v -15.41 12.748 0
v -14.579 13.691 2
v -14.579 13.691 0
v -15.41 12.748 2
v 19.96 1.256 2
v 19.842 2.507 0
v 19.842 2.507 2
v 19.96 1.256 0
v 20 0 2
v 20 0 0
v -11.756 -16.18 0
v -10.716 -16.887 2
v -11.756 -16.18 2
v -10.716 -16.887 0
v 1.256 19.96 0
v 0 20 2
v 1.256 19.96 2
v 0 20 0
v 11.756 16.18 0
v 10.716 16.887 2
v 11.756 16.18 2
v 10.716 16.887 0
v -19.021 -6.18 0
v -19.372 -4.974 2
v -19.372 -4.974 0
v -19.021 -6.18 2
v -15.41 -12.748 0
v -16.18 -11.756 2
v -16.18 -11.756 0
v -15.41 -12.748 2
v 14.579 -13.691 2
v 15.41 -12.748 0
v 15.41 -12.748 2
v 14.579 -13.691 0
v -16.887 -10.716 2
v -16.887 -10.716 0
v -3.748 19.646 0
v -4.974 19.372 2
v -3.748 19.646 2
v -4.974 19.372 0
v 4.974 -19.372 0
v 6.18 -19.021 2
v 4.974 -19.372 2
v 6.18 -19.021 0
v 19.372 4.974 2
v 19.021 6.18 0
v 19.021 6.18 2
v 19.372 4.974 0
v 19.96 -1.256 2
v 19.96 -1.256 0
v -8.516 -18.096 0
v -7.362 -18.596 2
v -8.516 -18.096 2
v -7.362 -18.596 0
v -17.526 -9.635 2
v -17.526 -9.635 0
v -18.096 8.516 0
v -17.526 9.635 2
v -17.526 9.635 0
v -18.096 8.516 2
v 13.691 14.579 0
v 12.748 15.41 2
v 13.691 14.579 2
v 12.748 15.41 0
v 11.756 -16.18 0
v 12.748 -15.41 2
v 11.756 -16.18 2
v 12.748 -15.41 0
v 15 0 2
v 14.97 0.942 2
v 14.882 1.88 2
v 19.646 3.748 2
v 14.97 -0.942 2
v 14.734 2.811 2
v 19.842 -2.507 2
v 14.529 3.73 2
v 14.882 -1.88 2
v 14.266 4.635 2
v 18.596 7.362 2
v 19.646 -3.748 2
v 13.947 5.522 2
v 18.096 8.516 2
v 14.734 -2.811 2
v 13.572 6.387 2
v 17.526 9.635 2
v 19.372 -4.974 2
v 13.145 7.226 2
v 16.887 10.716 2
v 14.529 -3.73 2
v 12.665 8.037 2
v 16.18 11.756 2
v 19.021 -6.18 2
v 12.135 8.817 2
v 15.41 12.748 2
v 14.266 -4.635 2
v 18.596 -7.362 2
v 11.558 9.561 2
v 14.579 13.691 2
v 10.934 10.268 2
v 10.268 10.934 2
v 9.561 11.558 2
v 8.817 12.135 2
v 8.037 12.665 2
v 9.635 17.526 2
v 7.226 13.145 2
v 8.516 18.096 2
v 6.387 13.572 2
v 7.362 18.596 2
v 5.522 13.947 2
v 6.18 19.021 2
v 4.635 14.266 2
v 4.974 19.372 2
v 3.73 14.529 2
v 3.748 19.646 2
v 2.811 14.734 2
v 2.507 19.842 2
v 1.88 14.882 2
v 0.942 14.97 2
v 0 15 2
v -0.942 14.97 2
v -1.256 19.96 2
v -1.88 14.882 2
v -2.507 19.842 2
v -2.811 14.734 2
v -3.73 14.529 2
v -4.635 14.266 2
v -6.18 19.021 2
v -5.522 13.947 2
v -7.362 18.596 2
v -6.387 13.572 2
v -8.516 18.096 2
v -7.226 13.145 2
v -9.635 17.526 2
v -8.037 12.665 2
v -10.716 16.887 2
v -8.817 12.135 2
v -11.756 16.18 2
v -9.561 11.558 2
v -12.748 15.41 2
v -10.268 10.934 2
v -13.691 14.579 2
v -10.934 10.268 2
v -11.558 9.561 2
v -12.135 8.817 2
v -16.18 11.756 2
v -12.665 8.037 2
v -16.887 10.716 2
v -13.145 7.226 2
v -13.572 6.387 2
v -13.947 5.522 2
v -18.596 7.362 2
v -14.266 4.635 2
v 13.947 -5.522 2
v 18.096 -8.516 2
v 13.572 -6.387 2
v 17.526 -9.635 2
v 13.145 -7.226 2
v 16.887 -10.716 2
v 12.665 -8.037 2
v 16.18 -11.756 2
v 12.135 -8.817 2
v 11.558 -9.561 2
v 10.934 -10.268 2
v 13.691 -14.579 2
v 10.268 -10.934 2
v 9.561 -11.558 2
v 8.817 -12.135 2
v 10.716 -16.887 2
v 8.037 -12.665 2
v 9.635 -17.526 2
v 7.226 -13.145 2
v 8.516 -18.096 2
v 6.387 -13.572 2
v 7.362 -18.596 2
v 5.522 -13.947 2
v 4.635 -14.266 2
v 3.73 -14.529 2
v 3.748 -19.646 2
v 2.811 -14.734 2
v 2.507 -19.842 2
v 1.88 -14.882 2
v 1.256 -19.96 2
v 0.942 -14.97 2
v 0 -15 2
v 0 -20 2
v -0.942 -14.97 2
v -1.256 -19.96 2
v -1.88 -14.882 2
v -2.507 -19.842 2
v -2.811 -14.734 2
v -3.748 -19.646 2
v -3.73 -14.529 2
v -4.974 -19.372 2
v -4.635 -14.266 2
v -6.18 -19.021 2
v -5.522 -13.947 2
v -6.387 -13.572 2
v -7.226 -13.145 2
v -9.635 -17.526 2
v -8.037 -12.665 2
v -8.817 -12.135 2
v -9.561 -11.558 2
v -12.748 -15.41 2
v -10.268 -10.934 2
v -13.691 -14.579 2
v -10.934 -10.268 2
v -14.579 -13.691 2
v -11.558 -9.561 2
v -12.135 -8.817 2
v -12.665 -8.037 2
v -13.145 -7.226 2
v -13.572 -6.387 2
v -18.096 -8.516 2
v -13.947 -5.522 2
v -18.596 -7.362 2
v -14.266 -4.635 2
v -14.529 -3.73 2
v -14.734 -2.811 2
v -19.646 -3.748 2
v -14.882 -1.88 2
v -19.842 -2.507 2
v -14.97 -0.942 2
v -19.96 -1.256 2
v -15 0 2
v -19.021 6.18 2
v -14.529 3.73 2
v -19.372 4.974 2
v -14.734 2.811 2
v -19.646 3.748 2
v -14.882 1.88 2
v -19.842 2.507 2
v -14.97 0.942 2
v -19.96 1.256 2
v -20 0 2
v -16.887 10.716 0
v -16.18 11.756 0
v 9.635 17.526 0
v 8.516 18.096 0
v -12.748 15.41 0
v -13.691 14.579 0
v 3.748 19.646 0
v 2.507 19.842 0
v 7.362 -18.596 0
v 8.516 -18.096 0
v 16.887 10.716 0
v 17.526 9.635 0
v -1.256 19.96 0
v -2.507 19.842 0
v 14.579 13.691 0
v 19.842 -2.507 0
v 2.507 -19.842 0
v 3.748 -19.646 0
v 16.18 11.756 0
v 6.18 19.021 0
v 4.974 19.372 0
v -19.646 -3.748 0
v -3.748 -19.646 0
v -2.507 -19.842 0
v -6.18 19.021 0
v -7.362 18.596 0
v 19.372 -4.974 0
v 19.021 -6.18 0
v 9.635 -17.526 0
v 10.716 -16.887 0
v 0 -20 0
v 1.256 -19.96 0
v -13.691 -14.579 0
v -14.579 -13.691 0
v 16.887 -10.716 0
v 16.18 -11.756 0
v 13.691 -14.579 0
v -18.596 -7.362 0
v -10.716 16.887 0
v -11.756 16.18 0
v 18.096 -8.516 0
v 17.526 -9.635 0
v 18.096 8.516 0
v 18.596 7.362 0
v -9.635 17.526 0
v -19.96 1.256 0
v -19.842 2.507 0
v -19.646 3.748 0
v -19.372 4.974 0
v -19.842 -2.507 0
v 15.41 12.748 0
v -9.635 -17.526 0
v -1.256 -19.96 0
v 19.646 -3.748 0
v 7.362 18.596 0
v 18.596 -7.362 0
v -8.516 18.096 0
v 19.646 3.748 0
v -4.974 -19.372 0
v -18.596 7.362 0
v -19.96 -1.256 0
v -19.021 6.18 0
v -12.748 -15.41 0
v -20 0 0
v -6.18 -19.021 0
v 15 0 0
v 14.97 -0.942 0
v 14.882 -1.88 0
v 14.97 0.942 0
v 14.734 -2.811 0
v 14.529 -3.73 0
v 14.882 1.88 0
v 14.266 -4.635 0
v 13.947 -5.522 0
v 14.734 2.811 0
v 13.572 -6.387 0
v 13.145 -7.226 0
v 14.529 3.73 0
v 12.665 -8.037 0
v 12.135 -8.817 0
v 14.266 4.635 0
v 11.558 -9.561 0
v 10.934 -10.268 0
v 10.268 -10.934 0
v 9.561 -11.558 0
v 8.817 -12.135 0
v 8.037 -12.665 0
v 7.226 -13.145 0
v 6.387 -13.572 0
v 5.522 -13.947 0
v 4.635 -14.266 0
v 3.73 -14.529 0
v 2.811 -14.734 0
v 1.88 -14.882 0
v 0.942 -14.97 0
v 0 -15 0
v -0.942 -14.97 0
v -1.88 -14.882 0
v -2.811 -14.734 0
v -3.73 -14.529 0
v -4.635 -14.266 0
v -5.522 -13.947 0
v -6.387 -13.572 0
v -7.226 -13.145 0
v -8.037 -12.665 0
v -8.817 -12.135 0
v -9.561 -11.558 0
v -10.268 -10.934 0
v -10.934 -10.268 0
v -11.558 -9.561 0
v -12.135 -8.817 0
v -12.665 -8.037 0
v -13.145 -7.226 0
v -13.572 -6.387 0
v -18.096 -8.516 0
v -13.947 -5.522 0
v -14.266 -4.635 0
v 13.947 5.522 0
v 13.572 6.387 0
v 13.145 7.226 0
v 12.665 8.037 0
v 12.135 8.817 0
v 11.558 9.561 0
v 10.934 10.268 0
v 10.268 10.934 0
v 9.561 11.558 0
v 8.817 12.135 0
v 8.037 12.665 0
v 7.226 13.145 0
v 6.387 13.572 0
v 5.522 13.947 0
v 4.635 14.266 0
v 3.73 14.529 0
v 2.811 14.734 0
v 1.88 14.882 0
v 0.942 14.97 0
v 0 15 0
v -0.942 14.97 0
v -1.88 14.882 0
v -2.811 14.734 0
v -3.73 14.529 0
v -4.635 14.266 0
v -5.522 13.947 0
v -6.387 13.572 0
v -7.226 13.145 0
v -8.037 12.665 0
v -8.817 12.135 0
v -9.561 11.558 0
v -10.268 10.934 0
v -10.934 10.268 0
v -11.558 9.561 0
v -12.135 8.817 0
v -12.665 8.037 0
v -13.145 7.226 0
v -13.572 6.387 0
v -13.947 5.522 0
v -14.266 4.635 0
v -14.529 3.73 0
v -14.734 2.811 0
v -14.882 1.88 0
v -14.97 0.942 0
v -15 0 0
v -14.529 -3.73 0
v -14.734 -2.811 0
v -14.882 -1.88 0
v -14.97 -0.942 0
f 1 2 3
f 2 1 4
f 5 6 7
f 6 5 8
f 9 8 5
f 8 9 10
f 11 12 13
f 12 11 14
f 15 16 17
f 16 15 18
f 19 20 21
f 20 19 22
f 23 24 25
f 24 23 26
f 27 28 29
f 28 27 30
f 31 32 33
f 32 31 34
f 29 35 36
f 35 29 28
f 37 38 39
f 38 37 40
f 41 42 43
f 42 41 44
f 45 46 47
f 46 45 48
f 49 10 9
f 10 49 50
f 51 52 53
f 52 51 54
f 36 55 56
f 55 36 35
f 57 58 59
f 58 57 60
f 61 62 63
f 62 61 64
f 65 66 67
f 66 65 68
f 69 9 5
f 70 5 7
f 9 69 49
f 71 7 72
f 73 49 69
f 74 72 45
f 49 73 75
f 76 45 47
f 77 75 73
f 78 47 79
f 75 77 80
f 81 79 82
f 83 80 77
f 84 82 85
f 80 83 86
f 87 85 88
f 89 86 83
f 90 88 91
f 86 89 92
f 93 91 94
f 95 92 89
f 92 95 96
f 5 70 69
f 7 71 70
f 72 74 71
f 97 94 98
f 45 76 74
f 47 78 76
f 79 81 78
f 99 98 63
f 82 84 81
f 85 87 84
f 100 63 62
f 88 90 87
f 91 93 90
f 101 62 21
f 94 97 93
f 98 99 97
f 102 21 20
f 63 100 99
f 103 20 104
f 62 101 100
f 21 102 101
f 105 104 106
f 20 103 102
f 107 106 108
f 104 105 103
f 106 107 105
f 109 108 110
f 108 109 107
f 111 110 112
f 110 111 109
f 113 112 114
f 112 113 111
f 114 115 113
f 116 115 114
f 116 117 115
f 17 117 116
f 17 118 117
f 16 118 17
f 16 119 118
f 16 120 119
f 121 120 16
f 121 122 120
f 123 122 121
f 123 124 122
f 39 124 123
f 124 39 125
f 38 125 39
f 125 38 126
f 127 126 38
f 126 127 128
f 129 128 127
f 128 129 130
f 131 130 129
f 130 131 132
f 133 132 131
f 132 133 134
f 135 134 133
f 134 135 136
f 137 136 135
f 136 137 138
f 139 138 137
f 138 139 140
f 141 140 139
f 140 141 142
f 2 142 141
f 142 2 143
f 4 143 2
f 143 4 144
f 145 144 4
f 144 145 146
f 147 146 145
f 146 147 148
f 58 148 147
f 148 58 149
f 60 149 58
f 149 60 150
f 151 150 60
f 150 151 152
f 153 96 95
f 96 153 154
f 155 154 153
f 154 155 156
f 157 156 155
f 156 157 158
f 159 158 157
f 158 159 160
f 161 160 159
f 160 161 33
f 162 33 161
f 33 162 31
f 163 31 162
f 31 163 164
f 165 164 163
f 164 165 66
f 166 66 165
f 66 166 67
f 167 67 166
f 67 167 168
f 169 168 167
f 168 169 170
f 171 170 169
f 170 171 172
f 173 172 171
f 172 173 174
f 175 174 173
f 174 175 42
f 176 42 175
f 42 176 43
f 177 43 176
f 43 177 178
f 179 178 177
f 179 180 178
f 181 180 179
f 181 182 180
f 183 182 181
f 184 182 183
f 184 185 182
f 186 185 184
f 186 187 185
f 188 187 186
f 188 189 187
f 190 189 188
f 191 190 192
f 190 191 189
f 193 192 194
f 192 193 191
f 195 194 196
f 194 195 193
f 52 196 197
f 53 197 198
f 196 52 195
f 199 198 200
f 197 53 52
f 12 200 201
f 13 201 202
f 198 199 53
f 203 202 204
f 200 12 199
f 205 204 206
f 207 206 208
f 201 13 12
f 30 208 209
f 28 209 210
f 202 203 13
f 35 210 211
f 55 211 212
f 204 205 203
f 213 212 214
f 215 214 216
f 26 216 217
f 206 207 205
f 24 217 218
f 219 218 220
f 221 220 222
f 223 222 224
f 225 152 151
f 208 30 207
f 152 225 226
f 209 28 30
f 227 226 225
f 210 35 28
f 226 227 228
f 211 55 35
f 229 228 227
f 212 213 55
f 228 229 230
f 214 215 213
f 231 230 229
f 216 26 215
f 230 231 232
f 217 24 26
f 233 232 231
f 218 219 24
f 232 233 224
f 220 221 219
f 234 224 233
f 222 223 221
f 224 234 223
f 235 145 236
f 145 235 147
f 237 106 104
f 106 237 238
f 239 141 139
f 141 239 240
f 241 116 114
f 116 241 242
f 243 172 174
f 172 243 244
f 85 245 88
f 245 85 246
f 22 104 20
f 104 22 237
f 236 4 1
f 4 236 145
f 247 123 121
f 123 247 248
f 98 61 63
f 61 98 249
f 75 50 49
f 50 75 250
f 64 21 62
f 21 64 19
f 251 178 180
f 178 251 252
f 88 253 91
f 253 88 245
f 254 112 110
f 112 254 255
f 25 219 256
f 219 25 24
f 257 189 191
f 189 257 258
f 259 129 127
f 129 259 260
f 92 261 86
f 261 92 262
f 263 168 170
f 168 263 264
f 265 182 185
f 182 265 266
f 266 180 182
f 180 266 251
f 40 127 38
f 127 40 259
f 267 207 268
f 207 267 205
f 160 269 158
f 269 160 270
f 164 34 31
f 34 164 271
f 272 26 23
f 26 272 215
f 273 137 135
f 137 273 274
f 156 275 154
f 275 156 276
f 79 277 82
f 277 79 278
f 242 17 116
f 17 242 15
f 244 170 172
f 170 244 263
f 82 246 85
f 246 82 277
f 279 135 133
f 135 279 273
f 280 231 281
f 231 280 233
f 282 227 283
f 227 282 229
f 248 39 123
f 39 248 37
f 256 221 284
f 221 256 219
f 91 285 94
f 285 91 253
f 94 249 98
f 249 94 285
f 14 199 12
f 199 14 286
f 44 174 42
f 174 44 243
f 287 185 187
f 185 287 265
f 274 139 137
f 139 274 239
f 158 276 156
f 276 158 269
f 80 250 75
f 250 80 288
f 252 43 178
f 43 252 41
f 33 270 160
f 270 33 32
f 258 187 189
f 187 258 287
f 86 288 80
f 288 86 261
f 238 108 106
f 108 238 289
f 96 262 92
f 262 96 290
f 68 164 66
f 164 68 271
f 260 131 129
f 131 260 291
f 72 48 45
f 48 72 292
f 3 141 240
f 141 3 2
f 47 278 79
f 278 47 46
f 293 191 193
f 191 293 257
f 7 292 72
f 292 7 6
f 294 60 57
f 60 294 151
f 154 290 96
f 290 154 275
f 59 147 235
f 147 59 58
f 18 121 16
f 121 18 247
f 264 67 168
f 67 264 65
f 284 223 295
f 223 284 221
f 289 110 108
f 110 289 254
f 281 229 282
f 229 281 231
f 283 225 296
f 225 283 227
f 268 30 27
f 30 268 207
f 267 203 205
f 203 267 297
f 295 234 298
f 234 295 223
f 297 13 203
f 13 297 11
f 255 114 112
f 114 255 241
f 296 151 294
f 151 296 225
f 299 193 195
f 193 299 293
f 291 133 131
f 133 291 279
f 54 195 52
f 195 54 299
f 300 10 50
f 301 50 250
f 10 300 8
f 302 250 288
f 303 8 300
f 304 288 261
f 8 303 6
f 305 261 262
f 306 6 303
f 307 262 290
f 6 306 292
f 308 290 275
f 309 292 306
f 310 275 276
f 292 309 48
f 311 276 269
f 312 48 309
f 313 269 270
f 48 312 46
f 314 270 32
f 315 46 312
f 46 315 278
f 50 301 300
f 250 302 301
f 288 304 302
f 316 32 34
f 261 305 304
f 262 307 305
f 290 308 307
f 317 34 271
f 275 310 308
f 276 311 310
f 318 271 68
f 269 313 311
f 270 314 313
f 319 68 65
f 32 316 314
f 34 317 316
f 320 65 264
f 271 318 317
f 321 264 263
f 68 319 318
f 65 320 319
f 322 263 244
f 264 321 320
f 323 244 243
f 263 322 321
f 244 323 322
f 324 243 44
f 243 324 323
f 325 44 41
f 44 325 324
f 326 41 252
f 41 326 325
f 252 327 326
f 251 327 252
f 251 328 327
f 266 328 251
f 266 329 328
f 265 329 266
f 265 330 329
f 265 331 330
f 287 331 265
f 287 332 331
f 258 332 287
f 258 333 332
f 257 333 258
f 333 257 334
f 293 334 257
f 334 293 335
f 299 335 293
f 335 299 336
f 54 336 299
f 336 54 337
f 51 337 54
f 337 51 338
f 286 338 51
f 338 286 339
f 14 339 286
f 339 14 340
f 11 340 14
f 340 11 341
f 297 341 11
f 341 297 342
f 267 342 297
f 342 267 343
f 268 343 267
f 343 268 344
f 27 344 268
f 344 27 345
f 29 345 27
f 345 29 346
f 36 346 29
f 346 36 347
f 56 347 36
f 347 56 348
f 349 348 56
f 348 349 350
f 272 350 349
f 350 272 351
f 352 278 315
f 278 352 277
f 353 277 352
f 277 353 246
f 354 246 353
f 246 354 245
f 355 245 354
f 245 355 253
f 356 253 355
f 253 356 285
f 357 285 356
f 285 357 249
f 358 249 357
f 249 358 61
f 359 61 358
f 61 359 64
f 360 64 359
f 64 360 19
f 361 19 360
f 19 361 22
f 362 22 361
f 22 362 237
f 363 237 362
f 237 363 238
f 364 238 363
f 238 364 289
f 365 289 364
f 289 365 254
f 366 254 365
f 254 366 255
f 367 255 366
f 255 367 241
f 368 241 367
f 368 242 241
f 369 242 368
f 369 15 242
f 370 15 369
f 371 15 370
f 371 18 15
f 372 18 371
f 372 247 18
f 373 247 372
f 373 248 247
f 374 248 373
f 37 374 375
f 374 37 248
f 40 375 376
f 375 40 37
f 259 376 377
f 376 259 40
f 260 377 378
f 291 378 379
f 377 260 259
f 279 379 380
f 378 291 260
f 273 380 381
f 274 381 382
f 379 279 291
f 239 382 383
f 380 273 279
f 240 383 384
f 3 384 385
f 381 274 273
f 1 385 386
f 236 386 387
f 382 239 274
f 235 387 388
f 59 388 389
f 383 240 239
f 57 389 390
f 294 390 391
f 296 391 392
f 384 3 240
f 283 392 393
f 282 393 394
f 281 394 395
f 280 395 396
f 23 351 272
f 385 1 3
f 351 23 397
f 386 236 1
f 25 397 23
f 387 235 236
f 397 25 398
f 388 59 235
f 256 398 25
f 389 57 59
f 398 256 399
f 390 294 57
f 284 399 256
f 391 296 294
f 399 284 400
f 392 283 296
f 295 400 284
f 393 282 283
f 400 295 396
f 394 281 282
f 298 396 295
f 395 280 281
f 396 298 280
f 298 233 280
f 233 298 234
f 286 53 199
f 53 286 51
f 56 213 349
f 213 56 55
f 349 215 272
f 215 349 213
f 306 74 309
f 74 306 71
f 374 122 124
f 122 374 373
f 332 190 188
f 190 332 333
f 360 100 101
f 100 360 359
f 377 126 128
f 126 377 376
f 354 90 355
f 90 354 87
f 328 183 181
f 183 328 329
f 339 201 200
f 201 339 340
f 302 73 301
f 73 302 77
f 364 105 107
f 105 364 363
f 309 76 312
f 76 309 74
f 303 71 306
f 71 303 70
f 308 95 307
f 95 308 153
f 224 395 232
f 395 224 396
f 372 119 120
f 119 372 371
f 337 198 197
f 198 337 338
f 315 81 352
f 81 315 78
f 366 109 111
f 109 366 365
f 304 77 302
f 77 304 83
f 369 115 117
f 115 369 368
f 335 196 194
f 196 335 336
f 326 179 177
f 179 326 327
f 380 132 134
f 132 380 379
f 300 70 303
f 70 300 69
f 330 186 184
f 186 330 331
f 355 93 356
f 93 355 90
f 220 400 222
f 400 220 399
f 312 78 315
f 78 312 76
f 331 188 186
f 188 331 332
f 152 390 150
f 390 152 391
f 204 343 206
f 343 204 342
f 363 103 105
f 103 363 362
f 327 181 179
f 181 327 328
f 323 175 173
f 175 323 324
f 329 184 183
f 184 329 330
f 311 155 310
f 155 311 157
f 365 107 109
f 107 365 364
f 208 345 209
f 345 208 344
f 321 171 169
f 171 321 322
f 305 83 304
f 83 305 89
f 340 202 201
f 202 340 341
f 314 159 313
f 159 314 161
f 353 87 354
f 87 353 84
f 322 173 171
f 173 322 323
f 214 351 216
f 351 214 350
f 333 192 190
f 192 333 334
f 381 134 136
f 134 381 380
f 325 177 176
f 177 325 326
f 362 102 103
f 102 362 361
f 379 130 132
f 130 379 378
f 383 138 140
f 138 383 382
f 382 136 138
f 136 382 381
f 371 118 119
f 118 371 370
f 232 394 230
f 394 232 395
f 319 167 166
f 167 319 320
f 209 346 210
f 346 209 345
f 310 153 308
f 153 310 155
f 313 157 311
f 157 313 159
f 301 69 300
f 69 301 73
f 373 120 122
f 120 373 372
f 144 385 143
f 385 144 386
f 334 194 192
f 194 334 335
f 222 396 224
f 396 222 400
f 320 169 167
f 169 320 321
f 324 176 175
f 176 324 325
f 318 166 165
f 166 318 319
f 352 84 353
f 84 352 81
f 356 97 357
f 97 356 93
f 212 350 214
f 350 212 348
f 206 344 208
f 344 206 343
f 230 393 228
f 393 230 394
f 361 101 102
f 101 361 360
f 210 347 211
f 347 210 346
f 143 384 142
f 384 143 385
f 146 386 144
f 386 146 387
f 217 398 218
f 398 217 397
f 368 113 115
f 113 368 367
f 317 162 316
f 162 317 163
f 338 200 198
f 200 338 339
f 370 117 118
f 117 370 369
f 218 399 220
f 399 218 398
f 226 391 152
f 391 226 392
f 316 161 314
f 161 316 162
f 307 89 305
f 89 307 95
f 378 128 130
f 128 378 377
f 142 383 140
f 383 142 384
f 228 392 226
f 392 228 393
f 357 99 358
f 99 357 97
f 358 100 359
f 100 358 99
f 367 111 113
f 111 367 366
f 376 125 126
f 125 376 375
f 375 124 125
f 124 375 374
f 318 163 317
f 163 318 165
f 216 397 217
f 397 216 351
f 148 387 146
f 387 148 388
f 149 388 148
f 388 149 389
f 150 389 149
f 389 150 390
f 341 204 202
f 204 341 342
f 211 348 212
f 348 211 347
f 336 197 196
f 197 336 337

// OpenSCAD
// Spacer Ring Parameters
module spacer_ring() {
    difference() {
        // Outer cylinder
        cylinder(h=2, r=20, $fn=100);
        // Inner cylinder (hollow center)
        cylinder(h=2, r=15, $fn=100);
    }
}

// Generate Spacer Rings
translate([0, 0, 0]) spacer_ring(); // Layer 1
